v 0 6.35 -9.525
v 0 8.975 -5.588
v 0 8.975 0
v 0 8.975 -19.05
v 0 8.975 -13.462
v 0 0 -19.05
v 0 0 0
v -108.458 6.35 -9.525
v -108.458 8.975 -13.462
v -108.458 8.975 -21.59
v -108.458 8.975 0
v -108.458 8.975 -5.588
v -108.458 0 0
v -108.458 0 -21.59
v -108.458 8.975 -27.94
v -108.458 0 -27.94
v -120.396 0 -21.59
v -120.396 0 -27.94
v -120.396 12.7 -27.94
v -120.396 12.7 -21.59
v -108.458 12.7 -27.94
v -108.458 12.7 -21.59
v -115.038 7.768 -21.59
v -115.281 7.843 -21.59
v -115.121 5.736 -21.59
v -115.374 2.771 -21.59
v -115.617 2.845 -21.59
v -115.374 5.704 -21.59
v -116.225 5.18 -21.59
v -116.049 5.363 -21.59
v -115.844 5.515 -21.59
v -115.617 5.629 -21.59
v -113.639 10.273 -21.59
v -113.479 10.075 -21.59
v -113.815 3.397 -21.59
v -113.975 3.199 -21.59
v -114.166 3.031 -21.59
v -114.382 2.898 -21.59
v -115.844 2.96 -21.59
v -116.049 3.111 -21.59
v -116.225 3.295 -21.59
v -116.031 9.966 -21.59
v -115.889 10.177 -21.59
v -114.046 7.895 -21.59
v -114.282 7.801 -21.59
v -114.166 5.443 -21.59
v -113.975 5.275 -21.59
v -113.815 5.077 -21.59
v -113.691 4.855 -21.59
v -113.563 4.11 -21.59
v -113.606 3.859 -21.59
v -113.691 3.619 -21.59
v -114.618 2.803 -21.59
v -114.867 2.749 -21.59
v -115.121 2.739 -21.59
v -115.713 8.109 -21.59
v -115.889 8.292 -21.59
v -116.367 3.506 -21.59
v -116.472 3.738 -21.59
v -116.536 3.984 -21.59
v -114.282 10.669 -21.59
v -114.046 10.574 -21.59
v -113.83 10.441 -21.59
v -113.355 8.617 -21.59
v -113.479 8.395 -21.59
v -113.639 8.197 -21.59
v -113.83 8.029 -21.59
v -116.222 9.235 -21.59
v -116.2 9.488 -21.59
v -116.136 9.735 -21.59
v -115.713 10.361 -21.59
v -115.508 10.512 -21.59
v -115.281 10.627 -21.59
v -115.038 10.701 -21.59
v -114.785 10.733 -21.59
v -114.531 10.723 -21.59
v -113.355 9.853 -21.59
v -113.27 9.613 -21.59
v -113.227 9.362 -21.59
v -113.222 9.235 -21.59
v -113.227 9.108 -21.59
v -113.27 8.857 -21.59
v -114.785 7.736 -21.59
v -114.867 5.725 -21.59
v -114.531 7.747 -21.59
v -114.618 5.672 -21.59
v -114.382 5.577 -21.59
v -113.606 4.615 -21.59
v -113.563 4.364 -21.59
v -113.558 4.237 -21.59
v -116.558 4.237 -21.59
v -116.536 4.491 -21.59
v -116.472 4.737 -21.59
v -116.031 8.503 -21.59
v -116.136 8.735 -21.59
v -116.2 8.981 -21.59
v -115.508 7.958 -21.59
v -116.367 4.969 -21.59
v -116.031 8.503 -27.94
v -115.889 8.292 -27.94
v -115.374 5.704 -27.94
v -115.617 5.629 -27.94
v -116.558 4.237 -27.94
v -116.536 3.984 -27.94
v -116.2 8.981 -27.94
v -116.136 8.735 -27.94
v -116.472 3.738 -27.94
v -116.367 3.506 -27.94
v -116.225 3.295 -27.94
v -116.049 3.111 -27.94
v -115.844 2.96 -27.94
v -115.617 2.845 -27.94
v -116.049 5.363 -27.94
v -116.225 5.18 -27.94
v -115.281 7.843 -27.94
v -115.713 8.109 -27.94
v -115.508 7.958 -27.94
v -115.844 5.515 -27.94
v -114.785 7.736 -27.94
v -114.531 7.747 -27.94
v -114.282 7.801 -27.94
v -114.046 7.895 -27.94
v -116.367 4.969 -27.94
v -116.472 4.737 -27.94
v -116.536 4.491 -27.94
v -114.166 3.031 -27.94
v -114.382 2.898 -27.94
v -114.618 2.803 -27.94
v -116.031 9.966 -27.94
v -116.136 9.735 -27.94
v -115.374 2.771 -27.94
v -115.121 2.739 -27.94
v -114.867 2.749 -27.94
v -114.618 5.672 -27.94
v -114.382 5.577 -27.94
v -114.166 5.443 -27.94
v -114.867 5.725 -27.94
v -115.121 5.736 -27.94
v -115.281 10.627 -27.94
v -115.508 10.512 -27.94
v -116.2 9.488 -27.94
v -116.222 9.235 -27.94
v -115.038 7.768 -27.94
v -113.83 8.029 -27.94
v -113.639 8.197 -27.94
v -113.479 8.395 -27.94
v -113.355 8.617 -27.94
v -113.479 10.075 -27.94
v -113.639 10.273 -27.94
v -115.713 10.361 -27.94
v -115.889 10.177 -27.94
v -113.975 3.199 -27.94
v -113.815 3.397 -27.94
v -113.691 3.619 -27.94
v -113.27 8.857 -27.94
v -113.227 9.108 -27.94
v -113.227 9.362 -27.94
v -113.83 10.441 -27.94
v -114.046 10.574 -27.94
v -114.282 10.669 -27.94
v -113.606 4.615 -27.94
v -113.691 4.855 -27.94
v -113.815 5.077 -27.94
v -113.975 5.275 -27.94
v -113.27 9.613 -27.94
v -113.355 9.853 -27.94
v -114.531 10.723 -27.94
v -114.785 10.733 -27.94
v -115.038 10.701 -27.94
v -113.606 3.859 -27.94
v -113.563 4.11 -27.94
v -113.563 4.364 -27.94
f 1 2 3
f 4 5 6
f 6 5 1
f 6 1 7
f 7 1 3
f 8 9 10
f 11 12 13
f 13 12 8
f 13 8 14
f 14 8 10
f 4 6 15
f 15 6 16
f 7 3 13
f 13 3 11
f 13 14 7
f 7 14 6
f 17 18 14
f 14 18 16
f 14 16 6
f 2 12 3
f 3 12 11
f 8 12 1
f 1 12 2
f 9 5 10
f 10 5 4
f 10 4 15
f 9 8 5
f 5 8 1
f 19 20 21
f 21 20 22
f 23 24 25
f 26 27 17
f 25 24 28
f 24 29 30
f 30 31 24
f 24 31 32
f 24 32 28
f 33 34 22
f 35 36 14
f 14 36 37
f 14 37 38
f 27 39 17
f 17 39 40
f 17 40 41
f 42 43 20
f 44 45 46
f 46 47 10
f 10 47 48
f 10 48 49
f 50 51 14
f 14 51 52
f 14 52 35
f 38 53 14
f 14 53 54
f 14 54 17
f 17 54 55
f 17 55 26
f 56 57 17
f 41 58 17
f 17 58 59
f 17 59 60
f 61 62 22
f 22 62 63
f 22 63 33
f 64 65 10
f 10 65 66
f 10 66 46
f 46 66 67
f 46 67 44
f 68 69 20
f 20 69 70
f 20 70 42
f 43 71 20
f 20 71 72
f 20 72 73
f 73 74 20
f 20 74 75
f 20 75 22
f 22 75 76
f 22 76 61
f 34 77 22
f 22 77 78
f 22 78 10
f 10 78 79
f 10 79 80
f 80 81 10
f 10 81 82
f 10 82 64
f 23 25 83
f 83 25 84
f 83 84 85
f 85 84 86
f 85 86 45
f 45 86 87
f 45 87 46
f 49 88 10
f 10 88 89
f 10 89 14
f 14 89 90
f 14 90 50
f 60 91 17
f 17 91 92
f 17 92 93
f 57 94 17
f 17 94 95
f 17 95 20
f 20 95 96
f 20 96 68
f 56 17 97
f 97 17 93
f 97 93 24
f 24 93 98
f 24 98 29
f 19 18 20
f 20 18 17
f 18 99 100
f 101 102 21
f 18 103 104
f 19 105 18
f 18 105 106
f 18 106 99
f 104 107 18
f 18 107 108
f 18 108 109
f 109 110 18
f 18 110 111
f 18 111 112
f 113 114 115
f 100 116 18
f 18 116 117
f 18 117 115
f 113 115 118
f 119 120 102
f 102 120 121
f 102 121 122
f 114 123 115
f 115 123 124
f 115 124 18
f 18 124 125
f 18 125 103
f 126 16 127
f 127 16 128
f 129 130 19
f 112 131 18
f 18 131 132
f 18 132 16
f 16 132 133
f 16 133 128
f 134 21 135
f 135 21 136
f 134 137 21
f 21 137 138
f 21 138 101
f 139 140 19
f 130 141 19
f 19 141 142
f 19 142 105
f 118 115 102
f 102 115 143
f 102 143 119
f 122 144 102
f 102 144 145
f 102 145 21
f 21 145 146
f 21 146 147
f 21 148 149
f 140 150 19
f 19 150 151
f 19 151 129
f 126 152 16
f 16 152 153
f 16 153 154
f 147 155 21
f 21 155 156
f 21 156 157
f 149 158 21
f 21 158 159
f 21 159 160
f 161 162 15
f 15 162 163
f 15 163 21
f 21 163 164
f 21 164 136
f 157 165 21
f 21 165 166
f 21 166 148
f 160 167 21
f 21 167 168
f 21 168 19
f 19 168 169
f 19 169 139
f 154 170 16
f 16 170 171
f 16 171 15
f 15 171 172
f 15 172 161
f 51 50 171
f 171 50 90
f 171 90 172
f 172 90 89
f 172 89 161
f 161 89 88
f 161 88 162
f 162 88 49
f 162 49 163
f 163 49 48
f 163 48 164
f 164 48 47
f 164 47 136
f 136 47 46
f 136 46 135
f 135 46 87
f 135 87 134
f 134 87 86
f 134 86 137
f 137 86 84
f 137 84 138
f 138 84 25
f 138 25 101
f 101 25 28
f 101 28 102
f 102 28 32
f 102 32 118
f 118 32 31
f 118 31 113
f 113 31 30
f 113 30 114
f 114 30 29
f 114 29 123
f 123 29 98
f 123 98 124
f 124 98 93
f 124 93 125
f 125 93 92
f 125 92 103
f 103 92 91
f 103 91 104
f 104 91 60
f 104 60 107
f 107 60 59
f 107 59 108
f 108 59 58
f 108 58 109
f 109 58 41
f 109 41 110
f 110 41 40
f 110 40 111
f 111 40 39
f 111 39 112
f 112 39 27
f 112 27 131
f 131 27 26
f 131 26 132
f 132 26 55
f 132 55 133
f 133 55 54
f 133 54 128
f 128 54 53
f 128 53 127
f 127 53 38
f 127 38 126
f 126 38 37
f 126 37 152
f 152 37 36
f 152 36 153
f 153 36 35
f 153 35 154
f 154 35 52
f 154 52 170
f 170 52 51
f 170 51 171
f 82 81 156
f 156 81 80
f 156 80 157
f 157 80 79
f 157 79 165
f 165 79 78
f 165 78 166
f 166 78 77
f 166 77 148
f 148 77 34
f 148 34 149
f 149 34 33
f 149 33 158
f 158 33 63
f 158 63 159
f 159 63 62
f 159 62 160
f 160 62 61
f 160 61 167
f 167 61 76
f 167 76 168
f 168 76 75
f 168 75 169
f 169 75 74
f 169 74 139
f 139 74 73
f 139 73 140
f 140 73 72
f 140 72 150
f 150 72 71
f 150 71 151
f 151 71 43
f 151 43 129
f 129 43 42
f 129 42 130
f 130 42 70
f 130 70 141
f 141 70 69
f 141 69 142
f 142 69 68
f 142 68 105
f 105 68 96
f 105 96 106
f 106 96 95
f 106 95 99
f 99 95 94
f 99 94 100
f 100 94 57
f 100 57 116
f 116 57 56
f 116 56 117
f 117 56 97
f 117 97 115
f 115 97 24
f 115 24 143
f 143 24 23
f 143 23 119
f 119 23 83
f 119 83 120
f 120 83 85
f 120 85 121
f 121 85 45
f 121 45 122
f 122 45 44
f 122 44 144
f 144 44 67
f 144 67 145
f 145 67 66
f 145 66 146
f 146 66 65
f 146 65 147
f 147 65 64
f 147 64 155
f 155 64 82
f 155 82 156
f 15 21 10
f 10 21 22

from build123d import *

# Parameters (mm, degrees)
BOSS_EXTRUDE1_DEPTH = 6.35
SKETCH2_W           = 5.588
SKETCH2_H           = 2.624659965
BOSS_EXTRUDE2_DEPTH = 108.458
SKETCH3_W           = 11.938
SKETCH3_H           = 6.35
BOSS_EXTRUDE3_DEPTH = 6.35
SKETCH4_R           = 1.5
CUT_EXTRUDE1_DEPTH  = 6.35
SKETCH5_W           = 24.200861289
SKETCH5_H           = 43.914531272
CUT_EXTRUDE2_DEPTH  = 6.35
BOSS_EXTRUDE8_DEPTH = 12.7
SKETCH7_R           = 1.5
CUT_EXTRUDE3_DEPTH  = 33.02
SKETCH8_W           = 11.938
SKETCH8_H           = 6.35
CUT_EXTRUDE4_DEPTH  = 33.02
CUT_EXTRUDE5_DEPTH  = 3.72534


with BuildPart() as part:
    # Sketch1 → Boss-Extrude1 (new body)
    with BuildSketch(Plane(origin=(0, 0, 0), x_dir=(1, 0, 0), z_dir=(0, 1, 0))):
        Polygon((0, 0), (0, 12.7), (11.938, 12.7), (11.938, 19.05), (-108.458, 19.05), (-108.458, 0), align=None)
    boss_extrude1 = extrude(amount=BOSS_EXTRUDE1_DEPTH)

    # Sketch2 → Boss-Extrude2 (add)
    with BuildSketch(Plane.ZY.offset(108.458)):
        with Locations((-2.794, 7.662329983)):
            Rectangle(SKETCH2_W, SKETCH2_H)
        with Locations((-16.256, 7.662329983)):
            Rectangle(SKETCH2_W, SKETCH2_H)
        Polygon((-5.588, 8.974659965), (-9.525, 6.35), (-5.588, 6.35), align=None)
        Polygon((-13.462, 6.35), (-9.525, 6.35), (-13.462, 8.974659965), align=None)
    extrude(amount=-BOSS_EXTRUDE2_DEPTH)

    # Sketch3 → Boss-Extrude3 (add)
    with BuildSketch(Plane(origin=(0, 6.35, 0), x_dir=(1, 0, 0), z_dir=(0, 1, 0))):
        with Locations((5.969, 15.875)):
            Rectangle(SKETCH3_W, SKETCH3_H)
    boss_extrude3 = extrude(amount=BOSS_EXTRUDE3_DEPTH)

    # Sketch4 → Cut-Extrude1 (cut)
    with BuildSketch(Plane(origin=(0, 0, -19.05), x_dir=(-1, 0, 0), z_dir=(0, 0, -1))):
        with Locations((-6.599652977, 4.237288993)):
            Circle(SKETCH4_R)
        with Locations((-6.263550513, 9.234799649)):
            Circle(SKETCH4_R)
    cut_extrude1 = extrude(amount=-CUT_EXTRUDE1_DEPTH, mode=Mode.SUBTRACT)

    # Mirror1: Boss-Extrude1, Boss-Extrude3, Cut-Extrude1 across plane
    add(boss_extrude1.mirror(Plane.ZY.offset(54.229)))
    add(boss_extrude3.mirror(Plane.ZY.offset(54.229)))
    add(cut_extrude1.mirror(Plane.ZY.offset(54.229)), mode=Mode.SUBTRACT)

    # Sketch5 → Cut-Extrude2 (cut)
    with BuildSketch(Plane(origin=(0, 0, -19.05), x_dir=(-1, 0, 0), z_dir=(0, 0, -1))):
        with Locations((-12.100430645, -9.257265636)):
            Rectangle(SKETCH5_W, SKETCH5_H)
    extrude(amount=-CUT_EXTRUDE2_DEPTH, mode=Mode.SUBTRACT)

    # Sketch6 → Boss-Extrude8 (add)
    with BuildSketch(Plane.XZ):
        Polygon((-108.458, -19.05), (-108.458, -21.59), (-120.396, -21.59), (-120.396, -27.94), (-108.458, -27.94), (0, -19.05), (0, -16.677943068), (-108.458, -16.677943068), align=None)
    extrude(amount=-BOSS_EXTRUDE8_DEPTH)

    # Sketch7 → Cut-Extrude3 (cut)
    with BuildSketch(Plane(origin=(0, 0, -27.94), x_dir=(-1, 0, 0), z_dir=(0, 0, -1))):
        with Locations((114.721550513, 9.234799649)):
            Circle(SKETCH7_R)
        with Locations((115.057652977, 4.237288993)):
            Circle(SKETCH7_R)
    extrude(amount=-CUT_EXTRUDE3_DEPTH, mode=Mode.SUBTRACT)

    # Sketch8 → Cut-Extrude4 (cut)
    with BuildSketch(Plane(origin=(0, 12.7, 0), x_dir=(1, 0, 0), z_dir=(0, 1, 0))):
        with Locations((-114.427, 15.875)):
            Rectangle(SKETCH8_W, SKETCH8_H)
    extrude(amount=-CUT_EXTRUDE4_DEPTH, mode=Mode.SUBTRACT)

    # Sketch9 → Cut-Extrude5 (cut)
    with BuildSketch(Plane(origin=(0, 12.7, 0), x_dir=(1, 0, 0), z_dir=(0, 1, 0))):
        Polygon((-108.458, 27.94), (-108.458, 21.59), (-108.458, 16.677943068), (0, 16.677943068), (0, 19.05), align=None)
    extrude(amount=-CUT_EXTRUDE5_DEPTH, mode=Mode.SUBTRACT)


solid = part.part
